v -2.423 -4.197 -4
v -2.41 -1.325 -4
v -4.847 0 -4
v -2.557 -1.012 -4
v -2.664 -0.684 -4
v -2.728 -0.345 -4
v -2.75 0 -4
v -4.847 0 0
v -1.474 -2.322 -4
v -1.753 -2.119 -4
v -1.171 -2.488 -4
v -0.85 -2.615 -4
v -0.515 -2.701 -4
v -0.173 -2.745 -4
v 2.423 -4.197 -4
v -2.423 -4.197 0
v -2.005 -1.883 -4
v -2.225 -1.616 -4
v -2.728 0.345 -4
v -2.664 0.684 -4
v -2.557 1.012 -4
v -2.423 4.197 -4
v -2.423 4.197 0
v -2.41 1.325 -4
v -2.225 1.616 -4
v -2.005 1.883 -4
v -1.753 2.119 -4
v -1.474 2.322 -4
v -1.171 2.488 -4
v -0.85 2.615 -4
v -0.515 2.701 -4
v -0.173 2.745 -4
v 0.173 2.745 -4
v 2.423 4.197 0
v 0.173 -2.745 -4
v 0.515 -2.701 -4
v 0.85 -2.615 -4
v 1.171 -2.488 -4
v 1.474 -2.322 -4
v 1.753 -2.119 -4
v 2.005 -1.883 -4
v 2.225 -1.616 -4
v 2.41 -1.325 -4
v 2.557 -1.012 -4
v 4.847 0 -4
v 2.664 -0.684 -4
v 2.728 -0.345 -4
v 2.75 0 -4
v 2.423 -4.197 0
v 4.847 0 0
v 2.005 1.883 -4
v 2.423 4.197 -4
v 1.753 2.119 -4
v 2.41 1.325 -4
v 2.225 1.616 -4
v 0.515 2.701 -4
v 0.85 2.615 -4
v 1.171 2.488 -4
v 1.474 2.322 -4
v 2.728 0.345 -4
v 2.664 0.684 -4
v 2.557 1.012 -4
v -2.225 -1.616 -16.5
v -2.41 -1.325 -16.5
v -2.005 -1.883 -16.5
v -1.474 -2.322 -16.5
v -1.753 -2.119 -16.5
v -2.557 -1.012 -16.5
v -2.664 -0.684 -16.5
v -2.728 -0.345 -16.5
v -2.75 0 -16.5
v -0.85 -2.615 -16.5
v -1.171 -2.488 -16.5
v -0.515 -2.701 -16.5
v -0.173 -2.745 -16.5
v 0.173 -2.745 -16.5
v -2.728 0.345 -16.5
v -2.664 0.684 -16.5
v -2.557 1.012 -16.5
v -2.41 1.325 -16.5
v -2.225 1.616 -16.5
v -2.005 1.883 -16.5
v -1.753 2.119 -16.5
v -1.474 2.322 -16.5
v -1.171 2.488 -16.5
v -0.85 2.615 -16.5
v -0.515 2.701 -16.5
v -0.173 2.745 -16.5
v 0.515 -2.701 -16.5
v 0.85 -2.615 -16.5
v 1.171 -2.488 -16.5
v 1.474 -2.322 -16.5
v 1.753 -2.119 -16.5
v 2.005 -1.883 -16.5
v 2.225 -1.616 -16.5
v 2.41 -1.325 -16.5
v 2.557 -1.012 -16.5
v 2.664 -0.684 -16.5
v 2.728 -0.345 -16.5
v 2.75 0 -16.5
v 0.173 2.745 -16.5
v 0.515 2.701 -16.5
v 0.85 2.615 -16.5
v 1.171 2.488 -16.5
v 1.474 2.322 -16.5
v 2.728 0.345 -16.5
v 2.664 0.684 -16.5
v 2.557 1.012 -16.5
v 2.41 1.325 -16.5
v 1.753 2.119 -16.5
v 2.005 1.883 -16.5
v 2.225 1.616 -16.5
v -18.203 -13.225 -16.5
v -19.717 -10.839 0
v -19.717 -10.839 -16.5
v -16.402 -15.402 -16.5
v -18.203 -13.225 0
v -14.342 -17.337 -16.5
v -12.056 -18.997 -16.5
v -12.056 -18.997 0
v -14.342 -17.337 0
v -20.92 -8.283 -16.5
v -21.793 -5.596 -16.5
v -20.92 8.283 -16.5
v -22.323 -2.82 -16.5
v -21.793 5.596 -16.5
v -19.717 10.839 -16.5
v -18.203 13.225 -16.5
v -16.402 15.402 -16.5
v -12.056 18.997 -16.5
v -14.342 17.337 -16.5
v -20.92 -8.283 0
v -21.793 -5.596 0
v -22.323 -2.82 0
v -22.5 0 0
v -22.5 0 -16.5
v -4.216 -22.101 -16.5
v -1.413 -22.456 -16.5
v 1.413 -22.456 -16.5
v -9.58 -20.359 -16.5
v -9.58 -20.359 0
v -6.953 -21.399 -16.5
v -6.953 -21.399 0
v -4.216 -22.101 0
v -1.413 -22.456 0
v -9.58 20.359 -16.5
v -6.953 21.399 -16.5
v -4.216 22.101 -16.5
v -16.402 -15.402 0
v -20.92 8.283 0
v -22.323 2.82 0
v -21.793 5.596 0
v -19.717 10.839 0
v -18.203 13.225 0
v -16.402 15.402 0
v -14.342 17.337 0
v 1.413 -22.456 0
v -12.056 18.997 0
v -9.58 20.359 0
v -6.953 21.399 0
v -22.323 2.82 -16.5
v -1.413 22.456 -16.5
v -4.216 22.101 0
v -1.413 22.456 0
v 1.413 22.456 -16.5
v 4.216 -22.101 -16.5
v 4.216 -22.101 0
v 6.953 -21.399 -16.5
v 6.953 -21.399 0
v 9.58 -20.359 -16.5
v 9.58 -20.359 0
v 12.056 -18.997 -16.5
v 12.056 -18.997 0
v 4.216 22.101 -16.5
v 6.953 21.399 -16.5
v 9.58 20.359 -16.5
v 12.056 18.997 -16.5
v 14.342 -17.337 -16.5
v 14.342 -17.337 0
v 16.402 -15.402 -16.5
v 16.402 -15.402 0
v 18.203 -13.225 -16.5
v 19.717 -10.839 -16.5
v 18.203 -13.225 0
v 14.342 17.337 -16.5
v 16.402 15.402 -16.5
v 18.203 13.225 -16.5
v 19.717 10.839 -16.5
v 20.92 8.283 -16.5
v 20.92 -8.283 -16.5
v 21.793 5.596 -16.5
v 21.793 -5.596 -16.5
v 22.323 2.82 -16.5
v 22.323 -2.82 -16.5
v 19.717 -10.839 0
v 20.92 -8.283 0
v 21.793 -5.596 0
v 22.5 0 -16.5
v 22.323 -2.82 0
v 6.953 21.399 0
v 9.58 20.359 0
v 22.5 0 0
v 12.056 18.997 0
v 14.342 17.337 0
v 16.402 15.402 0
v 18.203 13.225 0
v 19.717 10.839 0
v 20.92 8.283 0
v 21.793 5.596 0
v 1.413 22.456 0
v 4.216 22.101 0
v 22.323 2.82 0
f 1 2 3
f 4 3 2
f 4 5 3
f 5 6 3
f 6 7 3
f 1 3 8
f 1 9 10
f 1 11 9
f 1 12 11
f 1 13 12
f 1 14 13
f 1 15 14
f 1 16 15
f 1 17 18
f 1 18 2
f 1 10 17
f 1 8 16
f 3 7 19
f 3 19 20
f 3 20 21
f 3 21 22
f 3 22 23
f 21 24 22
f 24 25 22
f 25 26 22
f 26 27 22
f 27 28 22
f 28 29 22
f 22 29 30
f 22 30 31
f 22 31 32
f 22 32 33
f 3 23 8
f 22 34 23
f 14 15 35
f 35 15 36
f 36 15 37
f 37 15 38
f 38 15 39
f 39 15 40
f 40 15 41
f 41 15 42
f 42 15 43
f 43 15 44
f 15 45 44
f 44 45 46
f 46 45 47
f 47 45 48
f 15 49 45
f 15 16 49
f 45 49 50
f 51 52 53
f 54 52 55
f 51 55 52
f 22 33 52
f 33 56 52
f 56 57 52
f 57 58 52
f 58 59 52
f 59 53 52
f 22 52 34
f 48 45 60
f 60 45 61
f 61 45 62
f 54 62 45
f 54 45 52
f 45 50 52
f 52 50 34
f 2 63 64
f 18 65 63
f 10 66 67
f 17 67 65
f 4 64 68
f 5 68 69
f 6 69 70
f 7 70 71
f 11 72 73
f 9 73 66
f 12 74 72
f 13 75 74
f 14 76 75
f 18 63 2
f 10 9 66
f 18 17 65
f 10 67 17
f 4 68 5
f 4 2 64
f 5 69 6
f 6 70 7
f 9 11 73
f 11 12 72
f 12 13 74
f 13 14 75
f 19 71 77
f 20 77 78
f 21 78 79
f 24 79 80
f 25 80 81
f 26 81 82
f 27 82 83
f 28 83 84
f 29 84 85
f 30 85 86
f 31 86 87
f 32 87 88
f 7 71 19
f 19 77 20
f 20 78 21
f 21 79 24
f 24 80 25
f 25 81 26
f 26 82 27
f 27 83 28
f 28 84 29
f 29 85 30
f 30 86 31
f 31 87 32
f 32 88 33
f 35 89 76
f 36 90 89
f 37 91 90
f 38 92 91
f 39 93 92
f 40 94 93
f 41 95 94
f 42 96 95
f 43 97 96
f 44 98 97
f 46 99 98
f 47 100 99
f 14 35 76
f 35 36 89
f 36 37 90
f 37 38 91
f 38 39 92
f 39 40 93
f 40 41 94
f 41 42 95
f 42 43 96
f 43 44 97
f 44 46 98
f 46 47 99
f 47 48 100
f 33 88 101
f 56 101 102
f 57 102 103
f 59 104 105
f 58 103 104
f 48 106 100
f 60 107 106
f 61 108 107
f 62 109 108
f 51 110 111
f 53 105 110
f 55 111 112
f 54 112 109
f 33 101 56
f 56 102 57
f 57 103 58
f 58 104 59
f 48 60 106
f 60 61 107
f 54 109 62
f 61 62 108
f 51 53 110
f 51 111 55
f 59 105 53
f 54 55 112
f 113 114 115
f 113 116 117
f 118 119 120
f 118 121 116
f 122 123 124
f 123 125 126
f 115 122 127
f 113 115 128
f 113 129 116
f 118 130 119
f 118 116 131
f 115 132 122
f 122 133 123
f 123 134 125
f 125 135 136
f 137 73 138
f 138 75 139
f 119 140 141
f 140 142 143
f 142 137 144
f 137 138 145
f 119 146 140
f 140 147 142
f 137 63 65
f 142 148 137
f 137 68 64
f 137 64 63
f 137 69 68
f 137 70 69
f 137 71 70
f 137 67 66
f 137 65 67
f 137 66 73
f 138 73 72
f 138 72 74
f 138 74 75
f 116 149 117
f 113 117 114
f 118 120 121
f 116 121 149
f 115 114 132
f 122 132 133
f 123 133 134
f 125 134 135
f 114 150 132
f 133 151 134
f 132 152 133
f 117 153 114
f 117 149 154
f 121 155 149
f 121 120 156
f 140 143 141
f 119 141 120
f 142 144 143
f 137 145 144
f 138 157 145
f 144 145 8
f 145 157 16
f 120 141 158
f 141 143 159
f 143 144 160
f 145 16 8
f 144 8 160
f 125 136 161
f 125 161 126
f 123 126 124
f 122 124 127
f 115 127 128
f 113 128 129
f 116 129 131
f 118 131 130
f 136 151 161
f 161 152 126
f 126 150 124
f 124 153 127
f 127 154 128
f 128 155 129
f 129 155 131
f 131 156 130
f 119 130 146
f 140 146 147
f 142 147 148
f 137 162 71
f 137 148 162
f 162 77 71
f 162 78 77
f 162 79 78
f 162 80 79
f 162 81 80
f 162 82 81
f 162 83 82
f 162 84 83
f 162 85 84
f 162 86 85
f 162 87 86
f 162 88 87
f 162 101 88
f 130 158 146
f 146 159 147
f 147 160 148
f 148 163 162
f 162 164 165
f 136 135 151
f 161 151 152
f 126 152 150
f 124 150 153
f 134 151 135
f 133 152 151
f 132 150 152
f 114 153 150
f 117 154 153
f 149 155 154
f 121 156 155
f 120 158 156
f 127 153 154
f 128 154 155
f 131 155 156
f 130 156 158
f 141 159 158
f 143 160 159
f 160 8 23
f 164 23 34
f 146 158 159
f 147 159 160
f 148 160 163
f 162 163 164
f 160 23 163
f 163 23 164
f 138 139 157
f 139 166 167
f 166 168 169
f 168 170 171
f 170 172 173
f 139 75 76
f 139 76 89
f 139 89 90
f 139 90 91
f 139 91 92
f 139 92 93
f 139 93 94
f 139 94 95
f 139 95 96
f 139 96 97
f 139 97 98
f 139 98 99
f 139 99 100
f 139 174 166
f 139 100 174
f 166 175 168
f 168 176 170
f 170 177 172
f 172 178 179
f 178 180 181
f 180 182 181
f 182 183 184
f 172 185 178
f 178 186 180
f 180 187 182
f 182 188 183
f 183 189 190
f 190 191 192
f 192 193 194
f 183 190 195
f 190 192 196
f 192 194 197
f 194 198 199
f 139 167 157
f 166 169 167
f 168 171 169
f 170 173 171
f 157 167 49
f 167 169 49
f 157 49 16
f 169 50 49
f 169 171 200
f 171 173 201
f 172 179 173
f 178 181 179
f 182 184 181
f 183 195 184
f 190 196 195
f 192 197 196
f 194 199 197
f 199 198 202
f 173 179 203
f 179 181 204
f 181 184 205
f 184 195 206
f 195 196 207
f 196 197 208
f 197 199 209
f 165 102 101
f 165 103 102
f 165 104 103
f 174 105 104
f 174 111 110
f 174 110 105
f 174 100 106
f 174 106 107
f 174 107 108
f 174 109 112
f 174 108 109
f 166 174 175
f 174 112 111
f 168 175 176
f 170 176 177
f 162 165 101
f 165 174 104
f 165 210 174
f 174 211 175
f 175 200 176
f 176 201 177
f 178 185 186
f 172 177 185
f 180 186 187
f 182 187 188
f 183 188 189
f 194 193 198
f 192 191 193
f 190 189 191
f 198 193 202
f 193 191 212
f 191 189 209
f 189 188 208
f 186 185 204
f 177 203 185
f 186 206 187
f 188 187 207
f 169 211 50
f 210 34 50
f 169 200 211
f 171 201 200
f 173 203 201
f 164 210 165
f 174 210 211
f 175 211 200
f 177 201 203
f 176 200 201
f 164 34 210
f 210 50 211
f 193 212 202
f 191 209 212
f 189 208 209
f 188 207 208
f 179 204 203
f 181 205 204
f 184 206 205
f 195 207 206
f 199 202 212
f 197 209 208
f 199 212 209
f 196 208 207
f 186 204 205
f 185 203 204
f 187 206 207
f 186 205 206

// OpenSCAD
$fn = 50;

difference() {
	union() {
		translate(v = [0, 0, -16.5]) {
			cylinder(h = 16.5, r = 22.5);
		}
	}
	union() {
		translate(v = [0, 0, 0]) {
			rotate(a = [0, 0, 0]) {
				difference() {
					union() {
						translate(v = [0, 0, -4]) {
							linear_extrude(height = 4) {
								polygon(points = [[4.8468, 0.0], [2.4234000000000004, 4.197451927062417], [-2.423399999999999, 4.197451927062417], [-4.8468, 5.935618106107392e-16], [-2.423400000000002, -4.197451927062416], [2.423399999999997, -4.197451927062419]]);
							}
						}
					}
					union();
				}
			}
		}
		#translate(v = [0, 0, -100.0]) {
			cylinder(h = 200, r = 2.75);
		}
	}
}
